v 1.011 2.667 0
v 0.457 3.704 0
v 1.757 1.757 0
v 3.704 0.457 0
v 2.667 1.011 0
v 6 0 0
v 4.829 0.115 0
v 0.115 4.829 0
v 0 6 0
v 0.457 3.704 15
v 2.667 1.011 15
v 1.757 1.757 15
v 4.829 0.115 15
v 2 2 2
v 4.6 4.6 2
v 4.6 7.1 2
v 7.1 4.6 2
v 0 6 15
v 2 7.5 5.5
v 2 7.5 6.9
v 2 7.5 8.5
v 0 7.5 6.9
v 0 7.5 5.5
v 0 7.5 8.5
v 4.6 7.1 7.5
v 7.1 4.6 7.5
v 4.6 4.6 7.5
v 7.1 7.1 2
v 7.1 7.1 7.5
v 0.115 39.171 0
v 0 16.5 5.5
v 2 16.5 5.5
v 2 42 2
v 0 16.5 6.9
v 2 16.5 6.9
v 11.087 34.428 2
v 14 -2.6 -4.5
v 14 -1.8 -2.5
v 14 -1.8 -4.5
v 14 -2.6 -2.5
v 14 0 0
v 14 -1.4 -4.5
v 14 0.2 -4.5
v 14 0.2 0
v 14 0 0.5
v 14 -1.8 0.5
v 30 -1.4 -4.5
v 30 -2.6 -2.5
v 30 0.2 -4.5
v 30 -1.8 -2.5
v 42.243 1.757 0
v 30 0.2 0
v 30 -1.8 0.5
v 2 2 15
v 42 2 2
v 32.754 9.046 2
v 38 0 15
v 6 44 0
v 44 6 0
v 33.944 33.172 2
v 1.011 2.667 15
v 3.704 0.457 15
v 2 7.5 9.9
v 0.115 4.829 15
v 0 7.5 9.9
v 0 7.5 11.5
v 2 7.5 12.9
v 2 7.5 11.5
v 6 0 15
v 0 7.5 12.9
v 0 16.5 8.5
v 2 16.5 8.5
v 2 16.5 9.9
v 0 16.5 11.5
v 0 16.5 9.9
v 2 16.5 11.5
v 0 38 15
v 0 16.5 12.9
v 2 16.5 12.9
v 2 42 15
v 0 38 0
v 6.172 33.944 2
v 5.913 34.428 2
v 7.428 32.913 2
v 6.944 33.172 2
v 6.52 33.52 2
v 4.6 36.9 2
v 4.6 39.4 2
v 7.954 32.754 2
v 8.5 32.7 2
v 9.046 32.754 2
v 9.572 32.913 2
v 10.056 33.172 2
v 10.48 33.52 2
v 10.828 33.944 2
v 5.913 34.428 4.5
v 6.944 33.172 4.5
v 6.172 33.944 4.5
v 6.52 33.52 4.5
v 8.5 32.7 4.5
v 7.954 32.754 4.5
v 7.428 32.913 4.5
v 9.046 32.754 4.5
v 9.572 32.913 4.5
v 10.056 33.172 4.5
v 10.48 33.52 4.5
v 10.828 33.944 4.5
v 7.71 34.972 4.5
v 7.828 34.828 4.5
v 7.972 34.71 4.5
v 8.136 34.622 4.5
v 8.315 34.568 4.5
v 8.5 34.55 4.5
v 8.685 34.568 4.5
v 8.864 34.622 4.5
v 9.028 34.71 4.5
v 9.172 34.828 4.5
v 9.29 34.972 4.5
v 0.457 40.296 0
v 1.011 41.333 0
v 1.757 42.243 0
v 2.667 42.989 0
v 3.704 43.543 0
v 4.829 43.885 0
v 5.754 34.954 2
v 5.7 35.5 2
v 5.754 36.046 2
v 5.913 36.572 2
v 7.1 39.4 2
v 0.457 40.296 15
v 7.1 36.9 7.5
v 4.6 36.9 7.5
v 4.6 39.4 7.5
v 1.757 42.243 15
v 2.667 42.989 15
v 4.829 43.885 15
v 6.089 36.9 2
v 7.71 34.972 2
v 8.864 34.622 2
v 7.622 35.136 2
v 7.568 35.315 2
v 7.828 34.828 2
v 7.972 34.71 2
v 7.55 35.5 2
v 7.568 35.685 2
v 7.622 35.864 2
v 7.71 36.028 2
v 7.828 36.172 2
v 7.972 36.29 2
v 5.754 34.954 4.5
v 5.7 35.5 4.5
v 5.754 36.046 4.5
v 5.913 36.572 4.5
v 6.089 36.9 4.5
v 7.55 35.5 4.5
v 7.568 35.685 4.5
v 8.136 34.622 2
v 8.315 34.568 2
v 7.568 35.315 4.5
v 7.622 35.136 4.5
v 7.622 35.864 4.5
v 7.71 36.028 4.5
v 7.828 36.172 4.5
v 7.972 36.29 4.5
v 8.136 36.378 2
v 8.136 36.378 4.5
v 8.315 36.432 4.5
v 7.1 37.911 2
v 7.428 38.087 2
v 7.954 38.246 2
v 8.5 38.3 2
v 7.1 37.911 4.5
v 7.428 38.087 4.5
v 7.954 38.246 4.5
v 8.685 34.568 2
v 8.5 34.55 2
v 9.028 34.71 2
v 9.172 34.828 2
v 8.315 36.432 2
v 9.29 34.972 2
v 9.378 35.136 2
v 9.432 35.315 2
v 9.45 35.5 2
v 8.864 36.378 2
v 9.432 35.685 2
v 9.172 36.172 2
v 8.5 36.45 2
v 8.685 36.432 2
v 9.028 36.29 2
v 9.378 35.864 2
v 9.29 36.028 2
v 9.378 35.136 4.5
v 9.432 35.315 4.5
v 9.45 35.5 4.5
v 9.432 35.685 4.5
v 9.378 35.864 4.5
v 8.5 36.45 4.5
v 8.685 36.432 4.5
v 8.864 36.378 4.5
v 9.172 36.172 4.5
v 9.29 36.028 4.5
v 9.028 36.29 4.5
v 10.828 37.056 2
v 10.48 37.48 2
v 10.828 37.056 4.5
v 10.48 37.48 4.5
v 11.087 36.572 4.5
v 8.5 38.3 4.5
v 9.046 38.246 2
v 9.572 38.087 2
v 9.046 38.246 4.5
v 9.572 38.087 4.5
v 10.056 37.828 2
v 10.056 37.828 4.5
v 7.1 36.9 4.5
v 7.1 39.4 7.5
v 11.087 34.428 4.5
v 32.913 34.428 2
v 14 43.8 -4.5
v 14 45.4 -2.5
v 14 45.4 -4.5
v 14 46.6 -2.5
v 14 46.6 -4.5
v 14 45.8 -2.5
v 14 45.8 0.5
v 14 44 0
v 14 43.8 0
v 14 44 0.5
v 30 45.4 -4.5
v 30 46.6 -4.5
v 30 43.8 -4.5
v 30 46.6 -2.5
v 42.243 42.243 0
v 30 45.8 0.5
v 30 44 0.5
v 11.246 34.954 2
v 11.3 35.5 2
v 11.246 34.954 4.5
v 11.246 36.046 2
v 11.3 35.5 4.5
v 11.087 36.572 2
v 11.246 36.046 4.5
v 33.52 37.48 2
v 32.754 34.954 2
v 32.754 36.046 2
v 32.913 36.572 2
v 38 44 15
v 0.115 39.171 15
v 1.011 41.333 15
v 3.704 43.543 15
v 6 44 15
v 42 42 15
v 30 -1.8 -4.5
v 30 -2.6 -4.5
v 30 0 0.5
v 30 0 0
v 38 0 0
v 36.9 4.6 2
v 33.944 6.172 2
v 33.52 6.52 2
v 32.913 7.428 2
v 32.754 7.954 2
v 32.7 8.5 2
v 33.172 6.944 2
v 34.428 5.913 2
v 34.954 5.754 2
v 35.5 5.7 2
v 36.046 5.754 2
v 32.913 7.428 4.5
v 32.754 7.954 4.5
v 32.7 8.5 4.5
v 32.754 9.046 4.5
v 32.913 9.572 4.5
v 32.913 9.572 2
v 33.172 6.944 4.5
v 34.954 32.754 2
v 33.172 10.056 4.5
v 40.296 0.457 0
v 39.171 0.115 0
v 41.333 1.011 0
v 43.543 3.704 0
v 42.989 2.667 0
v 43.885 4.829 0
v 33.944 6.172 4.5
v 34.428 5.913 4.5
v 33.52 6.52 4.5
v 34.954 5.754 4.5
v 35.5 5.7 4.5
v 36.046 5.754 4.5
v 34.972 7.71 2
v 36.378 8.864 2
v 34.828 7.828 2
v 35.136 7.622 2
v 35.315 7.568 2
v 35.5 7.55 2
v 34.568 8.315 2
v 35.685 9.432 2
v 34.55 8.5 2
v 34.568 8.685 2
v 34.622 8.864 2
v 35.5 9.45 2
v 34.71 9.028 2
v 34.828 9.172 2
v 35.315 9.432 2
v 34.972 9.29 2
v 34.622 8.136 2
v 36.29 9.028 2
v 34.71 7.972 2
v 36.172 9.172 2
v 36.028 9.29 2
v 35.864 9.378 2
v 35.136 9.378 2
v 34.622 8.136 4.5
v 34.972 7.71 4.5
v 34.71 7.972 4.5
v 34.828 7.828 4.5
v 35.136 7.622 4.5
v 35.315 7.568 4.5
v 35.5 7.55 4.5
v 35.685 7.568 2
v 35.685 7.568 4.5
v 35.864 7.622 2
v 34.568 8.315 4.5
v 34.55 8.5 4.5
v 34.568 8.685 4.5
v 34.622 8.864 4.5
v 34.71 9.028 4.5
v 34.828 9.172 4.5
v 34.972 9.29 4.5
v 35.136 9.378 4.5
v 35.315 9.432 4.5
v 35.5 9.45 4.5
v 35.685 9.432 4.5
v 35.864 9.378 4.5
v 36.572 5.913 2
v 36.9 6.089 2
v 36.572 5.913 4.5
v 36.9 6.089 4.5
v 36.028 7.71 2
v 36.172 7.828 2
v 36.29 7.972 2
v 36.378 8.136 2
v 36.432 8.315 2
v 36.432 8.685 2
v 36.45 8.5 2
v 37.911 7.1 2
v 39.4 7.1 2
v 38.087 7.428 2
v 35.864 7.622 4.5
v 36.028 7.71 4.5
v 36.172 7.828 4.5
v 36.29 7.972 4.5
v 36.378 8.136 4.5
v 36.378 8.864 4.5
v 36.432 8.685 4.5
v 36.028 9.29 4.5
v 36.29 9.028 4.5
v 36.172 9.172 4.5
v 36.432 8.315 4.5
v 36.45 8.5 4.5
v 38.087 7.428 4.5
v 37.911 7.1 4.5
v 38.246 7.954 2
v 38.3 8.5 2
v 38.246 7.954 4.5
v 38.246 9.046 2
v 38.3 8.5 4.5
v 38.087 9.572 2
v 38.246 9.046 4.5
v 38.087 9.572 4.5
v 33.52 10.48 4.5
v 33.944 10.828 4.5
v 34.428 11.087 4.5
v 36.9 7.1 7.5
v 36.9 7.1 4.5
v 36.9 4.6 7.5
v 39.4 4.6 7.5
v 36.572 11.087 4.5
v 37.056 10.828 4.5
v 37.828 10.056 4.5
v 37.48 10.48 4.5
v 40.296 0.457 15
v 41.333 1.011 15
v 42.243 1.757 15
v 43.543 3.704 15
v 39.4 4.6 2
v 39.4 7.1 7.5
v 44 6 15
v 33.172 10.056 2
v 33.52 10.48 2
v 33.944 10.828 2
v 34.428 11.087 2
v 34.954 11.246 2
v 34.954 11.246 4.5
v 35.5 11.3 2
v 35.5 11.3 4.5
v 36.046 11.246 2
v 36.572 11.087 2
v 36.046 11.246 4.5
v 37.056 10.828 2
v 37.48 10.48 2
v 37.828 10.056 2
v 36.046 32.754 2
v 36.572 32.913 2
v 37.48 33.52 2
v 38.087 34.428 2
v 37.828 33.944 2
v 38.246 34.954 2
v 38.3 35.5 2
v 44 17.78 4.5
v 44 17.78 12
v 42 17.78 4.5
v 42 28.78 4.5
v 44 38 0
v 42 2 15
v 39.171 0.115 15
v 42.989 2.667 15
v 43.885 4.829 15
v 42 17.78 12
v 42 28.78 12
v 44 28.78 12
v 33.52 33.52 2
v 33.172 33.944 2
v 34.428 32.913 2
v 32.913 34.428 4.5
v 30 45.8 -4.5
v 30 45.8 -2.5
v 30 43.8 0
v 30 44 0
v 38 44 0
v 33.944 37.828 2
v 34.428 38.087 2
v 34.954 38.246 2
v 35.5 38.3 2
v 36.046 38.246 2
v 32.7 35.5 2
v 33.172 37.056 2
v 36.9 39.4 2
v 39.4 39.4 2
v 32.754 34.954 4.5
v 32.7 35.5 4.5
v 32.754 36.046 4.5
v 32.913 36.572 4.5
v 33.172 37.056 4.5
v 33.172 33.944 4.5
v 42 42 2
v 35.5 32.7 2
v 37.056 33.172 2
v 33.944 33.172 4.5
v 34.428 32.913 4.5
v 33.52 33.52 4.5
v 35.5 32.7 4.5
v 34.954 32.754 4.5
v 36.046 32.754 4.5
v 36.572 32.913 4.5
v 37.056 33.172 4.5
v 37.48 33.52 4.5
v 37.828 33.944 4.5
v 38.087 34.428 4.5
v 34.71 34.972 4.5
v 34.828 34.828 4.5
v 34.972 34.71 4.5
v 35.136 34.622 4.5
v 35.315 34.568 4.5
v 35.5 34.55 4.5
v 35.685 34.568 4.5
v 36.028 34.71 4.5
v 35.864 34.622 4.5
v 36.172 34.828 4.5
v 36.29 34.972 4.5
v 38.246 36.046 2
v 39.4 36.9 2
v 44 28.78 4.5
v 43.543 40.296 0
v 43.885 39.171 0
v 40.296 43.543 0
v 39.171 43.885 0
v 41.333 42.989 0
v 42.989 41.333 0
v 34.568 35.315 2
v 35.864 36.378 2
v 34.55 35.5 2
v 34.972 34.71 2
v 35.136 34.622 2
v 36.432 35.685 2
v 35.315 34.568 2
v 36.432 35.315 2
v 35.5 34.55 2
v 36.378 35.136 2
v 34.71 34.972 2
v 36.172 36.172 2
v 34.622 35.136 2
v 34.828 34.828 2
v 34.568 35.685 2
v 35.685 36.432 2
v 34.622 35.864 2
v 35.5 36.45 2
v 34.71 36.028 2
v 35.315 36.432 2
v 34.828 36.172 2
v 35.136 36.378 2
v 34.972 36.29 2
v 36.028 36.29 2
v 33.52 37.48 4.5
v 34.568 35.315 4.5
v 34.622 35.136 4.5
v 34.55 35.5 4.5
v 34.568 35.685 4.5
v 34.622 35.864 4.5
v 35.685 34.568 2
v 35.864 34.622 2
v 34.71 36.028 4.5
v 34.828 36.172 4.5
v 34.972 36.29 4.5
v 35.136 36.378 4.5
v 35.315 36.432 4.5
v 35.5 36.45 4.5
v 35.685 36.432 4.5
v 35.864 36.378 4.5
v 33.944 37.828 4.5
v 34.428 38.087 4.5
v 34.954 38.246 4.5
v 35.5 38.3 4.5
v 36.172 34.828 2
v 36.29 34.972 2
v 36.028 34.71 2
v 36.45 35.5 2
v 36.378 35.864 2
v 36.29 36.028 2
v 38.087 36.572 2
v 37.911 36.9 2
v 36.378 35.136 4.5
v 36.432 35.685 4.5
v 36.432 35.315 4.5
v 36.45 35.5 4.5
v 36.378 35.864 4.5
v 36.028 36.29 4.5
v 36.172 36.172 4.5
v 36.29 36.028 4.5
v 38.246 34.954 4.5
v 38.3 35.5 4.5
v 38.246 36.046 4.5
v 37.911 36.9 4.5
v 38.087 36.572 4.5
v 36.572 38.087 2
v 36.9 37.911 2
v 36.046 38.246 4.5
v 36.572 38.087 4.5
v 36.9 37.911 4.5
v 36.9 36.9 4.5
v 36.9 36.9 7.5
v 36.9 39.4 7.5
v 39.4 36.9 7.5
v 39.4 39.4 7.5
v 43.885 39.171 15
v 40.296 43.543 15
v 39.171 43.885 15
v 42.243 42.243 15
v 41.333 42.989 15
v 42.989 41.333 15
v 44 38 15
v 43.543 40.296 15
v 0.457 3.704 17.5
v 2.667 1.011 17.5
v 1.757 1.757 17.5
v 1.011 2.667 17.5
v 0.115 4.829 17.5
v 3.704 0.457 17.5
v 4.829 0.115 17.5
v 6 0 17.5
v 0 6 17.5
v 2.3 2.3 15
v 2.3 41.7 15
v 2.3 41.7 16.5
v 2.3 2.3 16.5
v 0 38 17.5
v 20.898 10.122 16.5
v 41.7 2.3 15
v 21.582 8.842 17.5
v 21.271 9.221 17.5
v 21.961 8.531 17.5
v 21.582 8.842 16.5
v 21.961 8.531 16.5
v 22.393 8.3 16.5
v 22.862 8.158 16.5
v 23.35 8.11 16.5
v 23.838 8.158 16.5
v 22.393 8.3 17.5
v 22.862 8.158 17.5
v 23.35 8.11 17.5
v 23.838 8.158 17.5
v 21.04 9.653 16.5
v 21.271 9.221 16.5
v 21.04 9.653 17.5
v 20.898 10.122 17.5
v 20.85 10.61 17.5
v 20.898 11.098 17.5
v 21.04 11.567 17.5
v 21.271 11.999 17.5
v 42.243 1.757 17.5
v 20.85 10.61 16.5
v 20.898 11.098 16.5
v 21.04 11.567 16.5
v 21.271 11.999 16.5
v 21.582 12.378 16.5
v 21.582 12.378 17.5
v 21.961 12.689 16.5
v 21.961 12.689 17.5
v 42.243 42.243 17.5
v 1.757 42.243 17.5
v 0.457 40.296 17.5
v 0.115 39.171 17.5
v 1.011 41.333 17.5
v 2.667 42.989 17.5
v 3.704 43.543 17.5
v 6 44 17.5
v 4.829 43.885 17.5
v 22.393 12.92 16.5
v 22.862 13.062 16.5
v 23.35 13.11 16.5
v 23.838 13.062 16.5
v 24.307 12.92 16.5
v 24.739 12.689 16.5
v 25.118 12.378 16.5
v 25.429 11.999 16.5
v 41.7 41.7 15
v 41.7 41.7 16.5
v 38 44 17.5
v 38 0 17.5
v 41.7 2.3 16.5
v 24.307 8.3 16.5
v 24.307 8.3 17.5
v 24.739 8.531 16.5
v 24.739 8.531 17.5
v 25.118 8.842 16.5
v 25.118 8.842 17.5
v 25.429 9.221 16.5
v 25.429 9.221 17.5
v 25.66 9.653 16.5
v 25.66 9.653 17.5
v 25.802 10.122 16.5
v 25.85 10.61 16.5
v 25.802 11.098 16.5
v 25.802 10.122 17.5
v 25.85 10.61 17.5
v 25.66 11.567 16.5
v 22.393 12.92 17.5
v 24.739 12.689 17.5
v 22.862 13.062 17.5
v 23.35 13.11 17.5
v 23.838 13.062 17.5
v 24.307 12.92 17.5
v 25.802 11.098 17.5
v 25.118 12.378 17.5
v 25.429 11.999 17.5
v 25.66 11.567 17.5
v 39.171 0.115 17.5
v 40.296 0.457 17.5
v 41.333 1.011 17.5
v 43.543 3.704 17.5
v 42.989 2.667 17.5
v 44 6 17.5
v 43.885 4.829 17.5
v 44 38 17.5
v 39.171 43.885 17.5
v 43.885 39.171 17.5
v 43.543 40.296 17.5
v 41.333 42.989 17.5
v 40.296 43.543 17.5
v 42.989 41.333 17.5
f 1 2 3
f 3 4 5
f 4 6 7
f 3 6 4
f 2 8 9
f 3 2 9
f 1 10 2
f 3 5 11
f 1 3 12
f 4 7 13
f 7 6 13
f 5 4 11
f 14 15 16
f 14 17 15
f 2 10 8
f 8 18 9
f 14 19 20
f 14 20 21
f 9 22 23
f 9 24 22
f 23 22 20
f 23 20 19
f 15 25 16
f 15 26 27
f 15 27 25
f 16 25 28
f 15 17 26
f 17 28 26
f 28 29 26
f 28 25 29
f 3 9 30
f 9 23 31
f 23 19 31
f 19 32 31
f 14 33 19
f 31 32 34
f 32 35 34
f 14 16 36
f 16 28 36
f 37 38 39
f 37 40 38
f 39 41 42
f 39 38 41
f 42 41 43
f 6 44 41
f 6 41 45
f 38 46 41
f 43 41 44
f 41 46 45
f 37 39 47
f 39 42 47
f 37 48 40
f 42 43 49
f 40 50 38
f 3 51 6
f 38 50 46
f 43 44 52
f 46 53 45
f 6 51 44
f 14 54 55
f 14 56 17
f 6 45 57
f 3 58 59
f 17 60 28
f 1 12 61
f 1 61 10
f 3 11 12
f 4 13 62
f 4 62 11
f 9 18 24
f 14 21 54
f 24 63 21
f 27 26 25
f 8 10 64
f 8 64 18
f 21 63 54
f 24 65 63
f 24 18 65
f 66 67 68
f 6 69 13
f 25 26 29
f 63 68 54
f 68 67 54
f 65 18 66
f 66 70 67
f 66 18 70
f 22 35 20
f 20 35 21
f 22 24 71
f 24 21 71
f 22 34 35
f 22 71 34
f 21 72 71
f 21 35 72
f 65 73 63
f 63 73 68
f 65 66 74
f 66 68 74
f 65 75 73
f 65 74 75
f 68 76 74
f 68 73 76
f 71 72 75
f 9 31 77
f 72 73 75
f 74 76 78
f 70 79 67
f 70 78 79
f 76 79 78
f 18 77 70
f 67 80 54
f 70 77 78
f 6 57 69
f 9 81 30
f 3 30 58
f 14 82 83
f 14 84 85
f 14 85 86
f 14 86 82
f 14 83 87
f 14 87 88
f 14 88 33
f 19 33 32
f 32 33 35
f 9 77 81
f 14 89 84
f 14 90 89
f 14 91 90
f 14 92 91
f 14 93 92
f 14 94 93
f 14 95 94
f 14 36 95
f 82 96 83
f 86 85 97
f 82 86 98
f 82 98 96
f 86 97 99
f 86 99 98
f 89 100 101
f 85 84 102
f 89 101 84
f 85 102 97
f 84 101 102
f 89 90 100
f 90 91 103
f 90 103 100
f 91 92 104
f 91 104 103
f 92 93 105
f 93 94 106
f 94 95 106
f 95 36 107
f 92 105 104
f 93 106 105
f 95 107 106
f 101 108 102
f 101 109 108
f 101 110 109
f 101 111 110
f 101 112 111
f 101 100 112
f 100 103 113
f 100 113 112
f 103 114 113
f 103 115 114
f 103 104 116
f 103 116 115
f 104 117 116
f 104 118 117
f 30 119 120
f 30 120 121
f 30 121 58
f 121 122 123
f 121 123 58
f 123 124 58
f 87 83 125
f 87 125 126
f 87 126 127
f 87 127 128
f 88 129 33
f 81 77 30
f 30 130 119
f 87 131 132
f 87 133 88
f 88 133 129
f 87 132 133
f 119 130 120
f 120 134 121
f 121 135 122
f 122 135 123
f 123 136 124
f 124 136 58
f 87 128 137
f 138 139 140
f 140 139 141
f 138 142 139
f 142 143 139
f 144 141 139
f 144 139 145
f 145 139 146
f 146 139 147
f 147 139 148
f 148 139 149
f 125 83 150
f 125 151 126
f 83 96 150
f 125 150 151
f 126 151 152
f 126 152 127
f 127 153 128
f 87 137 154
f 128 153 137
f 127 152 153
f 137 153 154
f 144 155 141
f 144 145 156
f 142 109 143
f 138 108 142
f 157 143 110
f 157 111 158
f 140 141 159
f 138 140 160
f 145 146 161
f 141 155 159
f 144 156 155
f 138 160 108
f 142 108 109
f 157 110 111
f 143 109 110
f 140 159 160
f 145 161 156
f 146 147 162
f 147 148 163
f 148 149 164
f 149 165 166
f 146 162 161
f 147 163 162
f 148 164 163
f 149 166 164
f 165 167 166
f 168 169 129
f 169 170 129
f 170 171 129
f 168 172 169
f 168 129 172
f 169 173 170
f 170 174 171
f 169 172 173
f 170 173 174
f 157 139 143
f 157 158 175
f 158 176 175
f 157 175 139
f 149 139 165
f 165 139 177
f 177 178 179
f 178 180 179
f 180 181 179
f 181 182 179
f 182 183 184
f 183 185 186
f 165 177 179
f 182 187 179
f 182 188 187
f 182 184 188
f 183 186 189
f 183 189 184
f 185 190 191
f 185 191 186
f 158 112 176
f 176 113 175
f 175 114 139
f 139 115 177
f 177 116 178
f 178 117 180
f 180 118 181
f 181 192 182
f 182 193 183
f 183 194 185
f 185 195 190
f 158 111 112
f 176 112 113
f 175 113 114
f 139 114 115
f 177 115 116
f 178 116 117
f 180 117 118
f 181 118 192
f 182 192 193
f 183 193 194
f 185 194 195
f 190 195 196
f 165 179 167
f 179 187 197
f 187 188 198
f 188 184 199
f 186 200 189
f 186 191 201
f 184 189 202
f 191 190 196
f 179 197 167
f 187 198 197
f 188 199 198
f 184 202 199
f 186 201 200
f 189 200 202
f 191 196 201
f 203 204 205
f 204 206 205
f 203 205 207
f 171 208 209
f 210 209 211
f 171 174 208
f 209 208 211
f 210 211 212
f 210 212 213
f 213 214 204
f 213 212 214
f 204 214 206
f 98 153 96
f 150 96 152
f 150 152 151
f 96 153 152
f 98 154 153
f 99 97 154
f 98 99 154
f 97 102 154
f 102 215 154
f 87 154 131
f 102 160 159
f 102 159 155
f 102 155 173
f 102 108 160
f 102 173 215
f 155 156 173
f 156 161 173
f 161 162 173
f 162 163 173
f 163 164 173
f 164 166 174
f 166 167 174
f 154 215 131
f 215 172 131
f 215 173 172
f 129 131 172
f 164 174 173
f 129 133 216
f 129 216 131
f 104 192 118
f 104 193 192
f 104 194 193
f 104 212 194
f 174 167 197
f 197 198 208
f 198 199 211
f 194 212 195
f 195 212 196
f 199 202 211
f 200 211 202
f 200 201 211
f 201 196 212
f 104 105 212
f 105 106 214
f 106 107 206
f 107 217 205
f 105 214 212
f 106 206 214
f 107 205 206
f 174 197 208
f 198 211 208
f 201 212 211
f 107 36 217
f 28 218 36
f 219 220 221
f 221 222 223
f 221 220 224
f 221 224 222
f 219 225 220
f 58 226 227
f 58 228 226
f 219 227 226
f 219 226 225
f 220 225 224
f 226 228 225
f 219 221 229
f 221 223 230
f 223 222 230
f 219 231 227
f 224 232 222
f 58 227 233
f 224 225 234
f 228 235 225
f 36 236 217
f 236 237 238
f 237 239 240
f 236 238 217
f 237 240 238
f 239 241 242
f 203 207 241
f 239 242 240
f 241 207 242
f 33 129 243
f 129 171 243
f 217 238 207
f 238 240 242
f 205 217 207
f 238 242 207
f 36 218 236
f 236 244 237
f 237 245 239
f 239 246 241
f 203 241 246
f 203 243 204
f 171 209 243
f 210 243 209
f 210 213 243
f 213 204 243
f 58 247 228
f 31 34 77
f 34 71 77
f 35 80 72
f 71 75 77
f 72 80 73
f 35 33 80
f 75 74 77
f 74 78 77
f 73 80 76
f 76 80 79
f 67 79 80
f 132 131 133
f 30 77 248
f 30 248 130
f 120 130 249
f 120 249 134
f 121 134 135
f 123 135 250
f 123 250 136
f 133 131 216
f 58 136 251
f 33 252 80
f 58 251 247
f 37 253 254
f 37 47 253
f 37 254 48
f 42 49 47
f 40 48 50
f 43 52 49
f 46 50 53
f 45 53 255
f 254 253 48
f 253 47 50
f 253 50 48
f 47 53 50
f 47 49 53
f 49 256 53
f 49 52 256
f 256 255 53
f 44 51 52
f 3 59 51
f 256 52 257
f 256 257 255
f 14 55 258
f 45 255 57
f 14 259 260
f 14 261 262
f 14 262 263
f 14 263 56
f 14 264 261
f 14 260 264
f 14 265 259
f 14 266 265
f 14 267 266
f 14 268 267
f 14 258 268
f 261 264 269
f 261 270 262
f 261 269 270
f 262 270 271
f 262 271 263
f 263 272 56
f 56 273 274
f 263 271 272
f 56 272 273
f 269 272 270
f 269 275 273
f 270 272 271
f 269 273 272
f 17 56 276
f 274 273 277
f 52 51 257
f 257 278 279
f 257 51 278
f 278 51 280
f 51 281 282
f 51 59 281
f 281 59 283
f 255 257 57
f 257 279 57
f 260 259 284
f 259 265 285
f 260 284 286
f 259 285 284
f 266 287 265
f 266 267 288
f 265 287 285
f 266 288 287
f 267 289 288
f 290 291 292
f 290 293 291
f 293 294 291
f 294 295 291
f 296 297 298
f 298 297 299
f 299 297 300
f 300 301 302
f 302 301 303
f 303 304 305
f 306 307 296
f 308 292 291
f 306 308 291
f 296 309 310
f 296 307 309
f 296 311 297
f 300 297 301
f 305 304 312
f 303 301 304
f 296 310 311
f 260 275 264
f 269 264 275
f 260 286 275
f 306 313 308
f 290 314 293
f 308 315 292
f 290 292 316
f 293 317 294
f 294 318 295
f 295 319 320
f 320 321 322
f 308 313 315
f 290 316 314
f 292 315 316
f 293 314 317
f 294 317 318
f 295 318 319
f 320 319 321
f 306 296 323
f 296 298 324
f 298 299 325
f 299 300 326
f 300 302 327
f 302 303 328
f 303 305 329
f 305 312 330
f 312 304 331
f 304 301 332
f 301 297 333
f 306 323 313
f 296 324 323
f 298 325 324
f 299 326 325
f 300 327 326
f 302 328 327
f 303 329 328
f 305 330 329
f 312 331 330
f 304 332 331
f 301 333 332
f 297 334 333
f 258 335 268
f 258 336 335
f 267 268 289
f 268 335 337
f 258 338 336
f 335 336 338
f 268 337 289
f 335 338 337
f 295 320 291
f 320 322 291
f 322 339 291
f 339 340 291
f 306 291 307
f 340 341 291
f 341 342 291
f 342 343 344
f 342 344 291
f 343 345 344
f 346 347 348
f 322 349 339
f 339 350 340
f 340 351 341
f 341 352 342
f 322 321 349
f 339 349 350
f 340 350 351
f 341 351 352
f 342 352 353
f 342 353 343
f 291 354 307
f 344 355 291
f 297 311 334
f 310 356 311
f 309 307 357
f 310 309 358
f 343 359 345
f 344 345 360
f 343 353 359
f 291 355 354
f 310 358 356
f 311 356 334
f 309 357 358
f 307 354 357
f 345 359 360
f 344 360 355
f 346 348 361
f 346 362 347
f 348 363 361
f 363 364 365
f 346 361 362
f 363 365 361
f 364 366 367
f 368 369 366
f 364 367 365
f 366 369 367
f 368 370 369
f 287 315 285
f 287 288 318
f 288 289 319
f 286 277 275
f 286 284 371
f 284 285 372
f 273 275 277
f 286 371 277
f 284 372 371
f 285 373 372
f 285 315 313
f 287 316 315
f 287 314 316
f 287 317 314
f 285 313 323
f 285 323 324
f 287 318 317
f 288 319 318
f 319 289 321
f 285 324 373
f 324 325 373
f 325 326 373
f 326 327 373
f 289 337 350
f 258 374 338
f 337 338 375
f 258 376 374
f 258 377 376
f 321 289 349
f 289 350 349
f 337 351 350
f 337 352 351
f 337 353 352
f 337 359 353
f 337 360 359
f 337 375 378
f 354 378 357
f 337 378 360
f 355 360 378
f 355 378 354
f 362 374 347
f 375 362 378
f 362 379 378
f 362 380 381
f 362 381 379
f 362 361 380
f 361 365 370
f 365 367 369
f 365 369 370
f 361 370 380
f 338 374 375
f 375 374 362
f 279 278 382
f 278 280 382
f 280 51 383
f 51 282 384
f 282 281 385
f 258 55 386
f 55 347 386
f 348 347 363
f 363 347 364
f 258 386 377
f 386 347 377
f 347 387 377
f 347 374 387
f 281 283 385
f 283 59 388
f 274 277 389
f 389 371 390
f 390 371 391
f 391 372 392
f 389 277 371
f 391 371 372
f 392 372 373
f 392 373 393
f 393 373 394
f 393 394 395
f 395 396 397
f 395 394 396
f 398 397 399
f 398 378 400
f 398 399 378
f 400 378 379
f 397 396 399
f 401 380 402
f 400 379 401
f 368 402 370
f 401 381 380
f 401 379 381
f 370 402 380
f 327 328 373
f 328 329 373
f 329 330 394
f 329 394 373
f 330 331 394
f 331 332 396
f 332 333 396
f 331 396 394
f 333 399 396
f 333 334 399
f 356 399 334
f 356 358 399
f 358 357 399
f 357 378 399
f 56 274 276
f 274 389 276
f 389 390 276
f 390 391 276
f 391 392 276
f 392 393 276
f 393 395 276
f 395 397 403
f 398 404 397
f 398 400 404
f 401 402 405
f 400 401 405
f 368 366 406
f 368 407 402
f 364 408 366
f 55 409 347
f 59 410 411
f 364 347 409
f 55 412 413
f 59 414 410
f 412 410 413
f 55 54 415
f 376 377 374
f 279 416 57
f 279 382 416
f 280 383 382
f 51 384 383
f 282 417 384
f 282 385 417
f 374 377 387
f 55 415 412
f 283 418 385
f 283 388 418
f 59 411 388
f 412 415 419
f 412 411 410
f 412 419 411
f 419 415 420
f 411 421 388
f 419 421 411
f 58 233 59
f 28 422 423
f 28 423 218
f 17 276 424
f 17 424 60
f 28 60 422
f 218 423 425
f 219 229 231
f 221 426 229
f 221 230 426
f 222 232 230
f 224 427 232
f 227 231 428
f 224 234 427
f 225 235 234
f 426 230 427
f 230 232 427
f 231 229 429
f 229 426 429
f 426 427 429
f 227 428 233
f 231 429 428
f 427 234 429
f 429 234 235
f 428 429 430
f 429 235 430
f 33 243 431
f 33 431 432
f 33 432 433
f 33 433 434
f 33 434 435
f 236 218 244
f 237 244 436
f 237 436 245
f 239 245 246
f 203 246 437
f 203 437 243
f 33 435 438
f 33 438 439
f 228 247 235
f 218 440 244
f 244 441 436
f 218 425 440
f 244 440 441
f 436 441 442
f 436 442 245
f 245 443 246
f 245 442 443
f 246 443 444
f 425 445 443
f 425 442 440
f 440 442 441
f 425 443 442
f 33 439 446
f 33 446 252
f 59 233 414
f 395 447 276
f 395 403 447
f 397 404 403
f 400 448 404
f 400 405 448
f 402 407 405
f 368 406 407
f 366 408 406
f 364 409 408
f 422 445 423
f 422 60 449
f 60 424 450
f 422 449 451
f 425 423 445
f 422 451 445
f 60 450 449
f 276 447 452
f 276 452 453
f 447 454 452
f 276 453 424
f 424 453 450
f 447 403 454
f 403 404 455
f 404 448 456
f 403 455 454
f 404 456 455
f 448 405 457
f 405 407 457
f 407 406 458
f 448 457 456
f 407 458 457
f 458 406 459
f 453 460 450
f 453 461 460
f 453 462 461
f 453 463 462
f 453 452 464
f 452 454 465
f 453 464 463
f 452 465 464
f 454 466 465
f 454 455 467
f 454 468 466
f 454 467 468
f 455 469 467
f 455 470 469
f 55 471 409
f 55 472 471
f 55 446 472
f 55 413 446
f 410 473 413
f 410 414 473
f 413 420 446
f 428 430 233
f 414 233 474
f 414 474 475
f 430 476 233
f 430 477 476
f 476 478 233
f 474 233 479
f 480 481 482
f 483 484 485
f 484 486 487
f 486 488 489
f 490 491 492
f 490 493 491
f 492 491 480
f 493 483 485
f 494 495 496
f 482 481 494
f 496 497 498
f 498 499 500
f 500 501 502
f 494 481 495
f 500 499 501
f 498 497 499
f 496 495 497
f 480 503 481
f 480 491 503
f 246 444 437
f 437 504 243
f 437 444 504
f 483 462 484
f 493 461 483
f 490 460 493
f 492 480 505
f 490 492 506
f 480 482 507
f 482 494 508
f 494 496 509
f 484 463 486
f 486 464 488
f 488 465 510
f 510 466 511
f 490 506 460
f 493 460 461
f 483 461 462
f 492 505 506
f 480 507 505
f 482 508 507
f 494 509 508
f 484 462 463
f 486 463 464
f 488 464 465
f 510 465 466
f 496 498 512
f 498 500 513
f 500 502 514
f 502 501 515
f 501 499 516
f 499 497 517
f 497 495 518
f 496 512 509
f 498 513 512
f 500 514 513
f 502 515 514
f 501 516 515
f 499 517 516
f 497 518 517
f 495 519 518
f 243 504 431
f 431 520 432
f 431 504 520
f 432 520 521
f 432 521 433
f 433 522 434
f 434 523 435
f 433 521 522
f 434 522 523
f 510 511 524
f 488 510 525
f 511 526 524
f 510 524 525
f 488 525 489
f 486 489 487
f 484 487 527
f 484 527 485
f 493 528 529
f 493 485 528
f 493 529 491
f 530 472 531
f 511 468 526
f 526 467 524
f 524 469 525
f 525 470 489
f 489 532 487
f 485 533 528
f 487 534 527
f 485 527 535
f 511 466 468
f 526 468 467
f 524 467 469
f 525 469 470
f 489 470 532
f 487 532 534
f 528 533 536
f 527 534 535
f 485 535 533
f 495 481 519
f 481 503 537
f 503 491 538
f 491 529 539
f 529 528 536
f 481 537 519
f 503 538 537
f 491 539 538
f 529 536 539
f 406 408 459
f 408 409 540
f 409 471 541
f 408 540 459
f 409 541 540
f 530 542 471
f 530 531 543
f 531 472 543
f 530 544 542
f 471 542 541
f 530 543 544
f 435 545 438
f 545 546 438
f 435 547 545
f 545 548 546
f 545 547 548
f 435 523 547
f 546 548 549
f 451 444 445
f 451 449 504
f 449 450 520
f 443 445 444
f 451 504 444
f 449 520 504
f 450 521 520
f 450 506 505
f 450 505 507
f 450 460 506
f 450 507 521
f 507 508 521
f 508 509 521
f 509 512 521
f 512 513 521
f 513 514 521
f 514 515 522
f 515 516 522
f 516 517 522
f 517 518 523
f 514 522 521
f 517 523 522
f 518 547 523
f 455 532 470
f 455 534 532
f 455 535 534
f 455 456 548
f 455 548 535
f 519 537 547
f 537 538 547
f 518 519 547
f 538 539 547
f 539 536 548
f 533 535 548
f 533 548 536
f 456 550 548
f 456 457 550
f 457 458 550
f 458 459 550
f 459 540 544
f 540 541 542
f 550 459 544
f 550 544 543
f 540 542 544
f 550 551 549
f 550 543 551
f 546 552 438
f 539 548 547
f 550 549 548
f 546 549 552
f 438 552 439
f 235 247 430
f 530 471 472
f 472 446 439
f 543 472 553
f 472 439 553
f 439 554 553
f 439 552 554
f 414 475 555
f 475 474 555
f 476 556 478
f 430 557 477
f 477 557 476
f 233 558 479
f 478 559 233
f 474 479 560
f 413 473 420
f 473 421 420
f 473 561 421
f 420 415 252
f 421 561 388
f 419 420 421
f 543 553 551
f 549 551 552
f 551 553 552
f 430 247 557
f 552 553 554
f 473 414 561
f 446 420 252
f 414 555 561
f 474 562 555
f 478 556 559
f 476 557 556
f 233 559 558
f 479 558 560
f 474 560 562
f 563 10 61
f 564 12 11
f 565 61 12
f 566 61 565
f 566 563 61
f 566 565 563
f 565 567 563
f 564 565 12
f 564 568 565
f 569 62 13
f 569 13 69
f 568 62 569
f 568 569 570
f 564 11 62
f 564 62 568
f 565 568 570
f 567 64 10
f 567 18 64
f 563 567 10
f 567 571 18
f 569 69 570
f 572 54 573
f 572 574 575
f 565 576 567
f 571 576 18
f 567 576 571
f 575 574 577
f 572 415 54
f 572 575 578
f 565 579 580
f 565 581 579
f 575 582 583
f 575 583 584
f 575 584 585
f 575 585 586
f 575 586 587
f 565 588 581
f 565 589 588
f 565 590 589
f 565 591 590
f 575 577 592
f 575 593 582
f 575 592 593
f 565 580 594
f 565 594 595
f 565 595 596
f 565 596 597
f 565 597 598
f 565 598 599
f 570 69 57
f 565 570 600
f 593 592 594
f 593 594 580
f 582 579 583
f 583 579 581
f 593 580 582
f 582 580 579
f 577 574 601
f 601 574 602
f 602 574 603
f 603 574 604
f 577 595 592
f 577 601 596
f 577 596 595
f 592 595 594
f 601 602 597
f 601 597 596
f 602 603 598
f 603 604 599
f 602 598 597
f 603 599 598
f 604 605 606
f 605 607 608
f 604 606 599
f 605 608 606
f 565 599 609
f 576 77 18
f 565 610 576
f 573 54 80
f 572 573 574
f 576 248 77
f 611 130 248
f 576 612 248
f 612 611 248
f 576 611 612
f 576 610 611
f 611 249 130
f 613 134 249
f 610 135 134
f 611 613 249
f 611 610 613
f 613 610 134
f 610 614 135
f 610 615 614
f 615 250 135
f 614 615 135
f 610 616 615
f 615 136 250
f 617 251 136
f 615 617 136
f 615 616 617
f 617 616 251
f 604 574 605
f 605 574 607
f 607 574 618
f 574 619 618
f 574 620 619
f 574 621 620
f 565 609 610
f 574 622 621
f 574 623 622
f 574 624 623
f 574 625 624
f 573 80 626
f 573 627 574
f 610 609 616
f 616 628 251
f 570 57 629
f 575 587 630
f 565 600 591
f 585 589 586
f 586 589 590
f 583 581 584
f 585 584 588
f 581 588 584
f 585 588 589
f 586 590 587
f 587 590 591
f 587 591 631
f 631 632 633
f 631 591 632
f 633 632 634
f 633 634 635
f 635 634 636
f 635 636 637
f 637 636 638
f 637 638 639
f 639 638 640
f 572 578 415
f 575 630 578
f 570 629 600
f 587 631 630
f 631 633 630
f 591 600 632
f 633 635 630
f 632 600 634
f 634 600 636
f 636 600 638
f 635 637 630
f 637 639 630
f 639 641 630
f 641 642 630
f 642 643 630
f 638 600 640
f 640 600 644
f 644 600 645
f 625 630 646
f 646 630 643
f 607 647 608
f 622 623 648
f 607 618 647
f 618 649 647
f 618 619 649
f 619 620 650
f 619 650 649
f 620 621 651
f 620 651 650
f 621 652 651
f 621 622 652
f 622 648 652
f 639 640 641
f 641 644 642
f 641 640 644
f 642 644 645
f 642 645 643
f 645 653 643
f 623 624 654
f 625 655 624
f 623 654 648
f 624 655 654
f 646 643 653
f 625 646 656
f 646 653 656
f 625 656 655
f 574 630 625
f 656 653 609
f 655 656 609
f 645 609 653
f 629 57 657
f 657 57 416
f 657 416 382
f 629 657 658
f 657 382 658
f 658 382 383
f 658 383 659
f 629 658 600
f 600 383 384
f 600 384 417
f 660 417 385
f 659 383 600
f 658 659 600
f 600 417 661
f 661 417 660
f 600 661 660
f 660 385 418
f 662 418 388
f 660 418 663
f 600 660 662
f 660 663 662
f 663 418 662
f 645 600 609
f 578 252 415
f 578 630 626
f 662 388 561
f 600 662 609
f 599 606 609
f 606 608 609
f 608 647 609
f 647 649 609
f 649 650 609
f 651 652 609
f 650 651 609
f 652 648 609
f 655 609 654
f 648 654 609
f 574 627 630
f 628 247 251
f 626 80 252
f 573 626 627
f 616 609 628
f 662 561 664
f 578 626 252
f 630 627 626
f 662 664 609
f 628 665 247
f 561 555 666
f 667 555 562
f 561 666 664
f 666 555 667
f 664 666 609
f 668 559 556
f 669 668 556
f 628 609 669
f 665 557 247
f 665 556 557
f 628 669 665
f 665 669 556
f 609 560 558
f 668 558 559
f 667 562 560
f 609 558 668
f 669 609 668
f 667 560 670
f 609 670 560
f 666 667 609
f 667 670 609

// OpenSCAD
// =============================================================================
// OpenMotorBridge - Front Node: Modular Snap-On Environmental Sensor Puck
// =============================================================================
// File: hardware/cad/scad/04_front_node/parts/sensor_puck_environmental.scad
// Description: Modular snap-on sensor cradle ("Körbchen") housing PCBA 05D
//              (34.0 x 34.0 mm) with exact 1:1 sensor and mounting parity:
//              1. u-blox SAM-M10Q Multi-GNSS patch module with unobstructed zenith sky view.
//              2. TI TMP117 high-precision thermometer on thermally isolated PCB island
//                 with direct laminar airflow ventilation slots on flank.
//              3. TI OPT3001 ambient light luxmeter with top optical aperture.
//              4. 3x M2 mounting screw bosses (H1, H2, H3) matching KiCad PCB.
//              5. Rear notch for 6-pin JST-GH cable to Front Node J_SENSOR_EXT.
//              Mounting modes:
//              - Bike Mode: Snaps directly onto Front Node upper lid via dual snap-arms.
//              - Remote Mode: Unclips with one thumb press and docks onto dashboard /
//                windshield wedge dock via JST-GH extension lead.
// =============================================================================

$fn = 32;

// --- Physical Puck Outer Envelope (Form-fit with Front Node lid snap slots) ---
PUCK_L          = 44.0;   // Outer longitudinal length (mm)
PUCK_W          = 44.0;   // Outer transverse width (mm)
PUCK_H          = 15.0;   // Total cradle height (mm)
WALL_THICK      = 2.0;    // Structural wall thickness (mm)
FLOOR_THICK     = 2.0;    // Bottom floor thickness (mm)
R_PUCK          = 6.0;    // Aerodynamic corner radius (mm)

// --- PCBA 05D Physical Parameters (KiCad openmotorbridge_sensor_puck.kicad_pcb) ---
PCB_L           = 34.0;   // PCB length (mm)
PCB_W           = 34.0;   // PCB width (mm)
PCB_T           = 1.6;    // FR4 substrate thickness (mm)
PCB_CLR         = 0.4;    // Internal clearance (mm)
STANDOFF_H      = 2.5;    // Standoff height under PCB (mm)

// Centered PCB origin inside 44 x 44 mm housing:
PCB_X0          = (PUCK_L - PCB_L) / 2.0; // 5.0 mm
PCB_Y0          = (PUCK_W - PCB_W) / 2.0; // 5.0 mm

// --- Exact Component Positions (from KiCad PCB coordinates) ---
// 1. OPT3001 Ambient Light Sensor U3 at (18.35, 5.61) on PCB
OPT_X           = PCB_X0 + 18.35; // 23.35 mm
OPT_Y           = PCB_Y0 + 5.61;  // 10.61 mm

// 2. TMP117 Temperature Sensor U2 at (5.0, 7.0) on PCB (thermal island)
TMP_X           = PCB_X0 + 5.0;   // 10.0 mm
TMP_Y           = PCB_Y0 + 7.0;   // 12.0 mm

// 3. J1 JST-GH 6-Pin Connector at (30.15, 18.28) facing +X
J1_X            = PCB_X0 + 30.15; // 35.15 mm
J1_Y            = PCB_Y0 + 18.28; // 23.28 mm

// 4. 3x M2 Mounting Holes: H1 (3.5, 30.5), H2 (30.5, 30.5), H3 (30.5, 3.5)
BOSS_LIST = [
    [PCB_X0 + 3.5,  PCB_Y0 + 30.5], // H1: (8.5, 35.5)
    [PCB_X0 + 30.5, PCB_Y0 + 30.5], // H2: (35.5, 35.5)
    [PCB_X0 + 30.5, PCB_Y0 + 3.5]   // H3: (35.5, 8.5)
];

// -----------------------------------------------------------------------------
// 1. Lower Puck Base & Sensor Cradle
// -----------------------------------------------------------------------------
module sensor_puck_cradle() {
    difference() {
        // Outer Squircle Aerodynamic Housing Body
        hull() {
            translate([R_PUCK, R_PUCK, 0])
                cylinder(r=R_PUCK, h=PUCK_H, center=false);
            translate([PUCK_L - R_PUCK, R_PUCK, 0])
                cylinder(r=R_PUCK, h=PUCK_H, center=false);
            translate([R_PUCK, PUCK_W - R_PUCK, 0])
                cylinder(r=R_PUCK, h=PUCK_H, center=false);
            translate([PUCK_L - R_PUCK, PUCK_W - R_PUCK, 0])
                cylinder(r=R_PUCK, h=PUCK_H, center=false);
        }

        // Inner Electronics Cavity for PCBA 05D (clears 34.0 x 34.0 mm PCB + components)
        translate([WALL_THICK, WALL_THICK, FLOOR_THICK]) {
            cube([PUCK_L - 2*WALL_THICK, PUCK_W - 2*WALL_THICK, PUCK_H + 1.0], center=false);
        }

        // Top Optical Light Port (Ø 4.5 mm aperture precisely over TI OPT3001)
        translate([OPT_X, OPT_Y, PUCK_H - 1.0])
            cylinder(r=2.25, h=3.0, center=false);

        // Laminar Airflow Vent Grill (for TMP117 thermometer on West flank X = 0)
        // Positioned adjacent to the thermally isolated PCB island (Y = 8.0 .. 16.0 mm)
        for (gz = [5.5, 8.5, 11.5]) {
            translate([-0.5, TMP_Y - 4.5, gz])
                cube([WALL_THICK + 1.0, 9.0, 1.4], center=false);
        }

        // Rear Cable Notch on East Flank (for 6-Pin JST-GH cable to Front Node J_SENSOR_EXT)
        // Centered directly on J1 at Y = 23.28 mm
        translate([PUCK_L - WALL_THICK - 1.0, J1_Y - 5.5, FLOOR_THICK + STANDOFF_H])
            cube([WALL_THICK + 2.0, 11.0, 7.5], center=false);
    }

    // 3x Internal M2 Mounting Bosses matching PCBA 05D (H1, H2, H3)
    // Corner at (8.5, 8.5) is kept completely open to avoid heat conduction to TMP117!
    for (pt = BOSS_LIST) {
        difference() {
            translate([pt[0], pt[1], FLOOR_THICK])
                cylinder(r=2.8, h=STANDOFF_H, center=false);
            translate([pt[0], pt[1], FLOOR_THICK - 0.5])
                cylinder(r=0.95, h=STANDOFF_H + 1.0, center=false); // M2 pilot hole
        }
    }

    // 4x Internal Lateral Locating Corner Guides (34.8 x 34.8 mm pocket stops)
    corner_guides = [
        [PCB_X0 - PCB_CLR, PCB_Y0 - PCB_CLR],
        [PCB_X0 + PCB_L + PCB_CLR - 2.5, PCB_Y0 - PCB_CLR],
        [PCB_X0 - PCB_CLR, PCB_Y0 + PCB_W + PCB_CLR - 2.5],
        [PCB_X0 + PCB_L + PCB_CLR - 2.5, PCB_Y0 + PCB_W + PCB_CLR - 2.5]
    ];
    for (cg = corner_guides) {
        translate([cg[0], cg[1], FLOOR_THICK])
            cube([2.5, 2.5, STANDOFF_H + 3.0], center=false);
    }

    // Dual Bottom Snap-Fit Arms (Rastlaschen für werkzeuglose Front-Node Schnellmontage)
    translate([PUCK_L/2.0 - 8.0, -1.8, -4.5])
        cube([16.0, 2.0, 5.0], center=false);
    translate([PUCK_L/2.0 - 8.0, -2.6, -4.5])
        cube([16.0, 1.2, 2.0], center=false); // Catch barb 1

    translate([PUCK_L/2.0 - 8.0, PUCK_W - 0.2, -4.5])
        cube([16.0, 2.0, 5.0], center=false);
    translate([PUCK_L/2.0 - 8.0, PUCK_W + 1.4, -4.5])
        cube([16.0, 1.2, 2.0], center=false); // Catch barb 2
}

// -----------------------------------------------------------------------------
// 2. Translucent Optical / Protective Cap
// -----------------------------------------------------------------------------
module sensor_puck_cap() {
    difference() {
        hull() {
            translate([R_PUCK, R_PUCK, 0])
                cylinder(r=R_PUCK, h=2.5, center=false);
            translate([PUCK_L - R_PUCK, R_PUCK, 0])
                cylinder(r=R_PUCK, h=2.5, center=false);
            translate([R_PUCK, PUCK_W - R_PUCK, 0])
                cylinder(r=R_PUCK, h=2.5, center=false);
            translate([PUCK_L - R_PUCK, PUCK_W - R_PUCK, 0])
                cylinder(r=R_PUCK, h=2.5, center=false);
        }

        // Inner clearance rim
        translate([WALL_THICK + 0.3, WALL_THICK + 0.3, -1.0])
            cube([PUCK_L - 2*(WALL_THICK + 0.3), PUCK_W - 2*(WALL_THICK + 0.3), 2.5], center=false);

        // Center optical window precisely over TI OPT3001
        translate([OPT_X, OPT_Y, -0.5])
            cylinder(r=2.5, h=4.0, center=false);
    }
}

// -----------------------------------------------------------------------------
// 3. Complete Assembly Preview
// -----------------------------------------------------------------------------
module sensor_puck_environmental_assembly() {
    color([0.22, 0.24, 0.26])
        sensor_puck_cradle();

    color([0.7, 0.8, 0.9, 0.8])
        translate([0, 0, PUCK_H])
            sensor_puck_cap();
}

// Standalone execution preview / part selector ("assembly" | "bottom" | "top")
part = "assembly";
if (part == "bottom" || part == "cradle") {
    sensor_puck_cradle();
} else if (part == "top" || part == "cap") {
    sensor_puck_cap();
} else {
    sensor_puck_environmental_assembly();
}
